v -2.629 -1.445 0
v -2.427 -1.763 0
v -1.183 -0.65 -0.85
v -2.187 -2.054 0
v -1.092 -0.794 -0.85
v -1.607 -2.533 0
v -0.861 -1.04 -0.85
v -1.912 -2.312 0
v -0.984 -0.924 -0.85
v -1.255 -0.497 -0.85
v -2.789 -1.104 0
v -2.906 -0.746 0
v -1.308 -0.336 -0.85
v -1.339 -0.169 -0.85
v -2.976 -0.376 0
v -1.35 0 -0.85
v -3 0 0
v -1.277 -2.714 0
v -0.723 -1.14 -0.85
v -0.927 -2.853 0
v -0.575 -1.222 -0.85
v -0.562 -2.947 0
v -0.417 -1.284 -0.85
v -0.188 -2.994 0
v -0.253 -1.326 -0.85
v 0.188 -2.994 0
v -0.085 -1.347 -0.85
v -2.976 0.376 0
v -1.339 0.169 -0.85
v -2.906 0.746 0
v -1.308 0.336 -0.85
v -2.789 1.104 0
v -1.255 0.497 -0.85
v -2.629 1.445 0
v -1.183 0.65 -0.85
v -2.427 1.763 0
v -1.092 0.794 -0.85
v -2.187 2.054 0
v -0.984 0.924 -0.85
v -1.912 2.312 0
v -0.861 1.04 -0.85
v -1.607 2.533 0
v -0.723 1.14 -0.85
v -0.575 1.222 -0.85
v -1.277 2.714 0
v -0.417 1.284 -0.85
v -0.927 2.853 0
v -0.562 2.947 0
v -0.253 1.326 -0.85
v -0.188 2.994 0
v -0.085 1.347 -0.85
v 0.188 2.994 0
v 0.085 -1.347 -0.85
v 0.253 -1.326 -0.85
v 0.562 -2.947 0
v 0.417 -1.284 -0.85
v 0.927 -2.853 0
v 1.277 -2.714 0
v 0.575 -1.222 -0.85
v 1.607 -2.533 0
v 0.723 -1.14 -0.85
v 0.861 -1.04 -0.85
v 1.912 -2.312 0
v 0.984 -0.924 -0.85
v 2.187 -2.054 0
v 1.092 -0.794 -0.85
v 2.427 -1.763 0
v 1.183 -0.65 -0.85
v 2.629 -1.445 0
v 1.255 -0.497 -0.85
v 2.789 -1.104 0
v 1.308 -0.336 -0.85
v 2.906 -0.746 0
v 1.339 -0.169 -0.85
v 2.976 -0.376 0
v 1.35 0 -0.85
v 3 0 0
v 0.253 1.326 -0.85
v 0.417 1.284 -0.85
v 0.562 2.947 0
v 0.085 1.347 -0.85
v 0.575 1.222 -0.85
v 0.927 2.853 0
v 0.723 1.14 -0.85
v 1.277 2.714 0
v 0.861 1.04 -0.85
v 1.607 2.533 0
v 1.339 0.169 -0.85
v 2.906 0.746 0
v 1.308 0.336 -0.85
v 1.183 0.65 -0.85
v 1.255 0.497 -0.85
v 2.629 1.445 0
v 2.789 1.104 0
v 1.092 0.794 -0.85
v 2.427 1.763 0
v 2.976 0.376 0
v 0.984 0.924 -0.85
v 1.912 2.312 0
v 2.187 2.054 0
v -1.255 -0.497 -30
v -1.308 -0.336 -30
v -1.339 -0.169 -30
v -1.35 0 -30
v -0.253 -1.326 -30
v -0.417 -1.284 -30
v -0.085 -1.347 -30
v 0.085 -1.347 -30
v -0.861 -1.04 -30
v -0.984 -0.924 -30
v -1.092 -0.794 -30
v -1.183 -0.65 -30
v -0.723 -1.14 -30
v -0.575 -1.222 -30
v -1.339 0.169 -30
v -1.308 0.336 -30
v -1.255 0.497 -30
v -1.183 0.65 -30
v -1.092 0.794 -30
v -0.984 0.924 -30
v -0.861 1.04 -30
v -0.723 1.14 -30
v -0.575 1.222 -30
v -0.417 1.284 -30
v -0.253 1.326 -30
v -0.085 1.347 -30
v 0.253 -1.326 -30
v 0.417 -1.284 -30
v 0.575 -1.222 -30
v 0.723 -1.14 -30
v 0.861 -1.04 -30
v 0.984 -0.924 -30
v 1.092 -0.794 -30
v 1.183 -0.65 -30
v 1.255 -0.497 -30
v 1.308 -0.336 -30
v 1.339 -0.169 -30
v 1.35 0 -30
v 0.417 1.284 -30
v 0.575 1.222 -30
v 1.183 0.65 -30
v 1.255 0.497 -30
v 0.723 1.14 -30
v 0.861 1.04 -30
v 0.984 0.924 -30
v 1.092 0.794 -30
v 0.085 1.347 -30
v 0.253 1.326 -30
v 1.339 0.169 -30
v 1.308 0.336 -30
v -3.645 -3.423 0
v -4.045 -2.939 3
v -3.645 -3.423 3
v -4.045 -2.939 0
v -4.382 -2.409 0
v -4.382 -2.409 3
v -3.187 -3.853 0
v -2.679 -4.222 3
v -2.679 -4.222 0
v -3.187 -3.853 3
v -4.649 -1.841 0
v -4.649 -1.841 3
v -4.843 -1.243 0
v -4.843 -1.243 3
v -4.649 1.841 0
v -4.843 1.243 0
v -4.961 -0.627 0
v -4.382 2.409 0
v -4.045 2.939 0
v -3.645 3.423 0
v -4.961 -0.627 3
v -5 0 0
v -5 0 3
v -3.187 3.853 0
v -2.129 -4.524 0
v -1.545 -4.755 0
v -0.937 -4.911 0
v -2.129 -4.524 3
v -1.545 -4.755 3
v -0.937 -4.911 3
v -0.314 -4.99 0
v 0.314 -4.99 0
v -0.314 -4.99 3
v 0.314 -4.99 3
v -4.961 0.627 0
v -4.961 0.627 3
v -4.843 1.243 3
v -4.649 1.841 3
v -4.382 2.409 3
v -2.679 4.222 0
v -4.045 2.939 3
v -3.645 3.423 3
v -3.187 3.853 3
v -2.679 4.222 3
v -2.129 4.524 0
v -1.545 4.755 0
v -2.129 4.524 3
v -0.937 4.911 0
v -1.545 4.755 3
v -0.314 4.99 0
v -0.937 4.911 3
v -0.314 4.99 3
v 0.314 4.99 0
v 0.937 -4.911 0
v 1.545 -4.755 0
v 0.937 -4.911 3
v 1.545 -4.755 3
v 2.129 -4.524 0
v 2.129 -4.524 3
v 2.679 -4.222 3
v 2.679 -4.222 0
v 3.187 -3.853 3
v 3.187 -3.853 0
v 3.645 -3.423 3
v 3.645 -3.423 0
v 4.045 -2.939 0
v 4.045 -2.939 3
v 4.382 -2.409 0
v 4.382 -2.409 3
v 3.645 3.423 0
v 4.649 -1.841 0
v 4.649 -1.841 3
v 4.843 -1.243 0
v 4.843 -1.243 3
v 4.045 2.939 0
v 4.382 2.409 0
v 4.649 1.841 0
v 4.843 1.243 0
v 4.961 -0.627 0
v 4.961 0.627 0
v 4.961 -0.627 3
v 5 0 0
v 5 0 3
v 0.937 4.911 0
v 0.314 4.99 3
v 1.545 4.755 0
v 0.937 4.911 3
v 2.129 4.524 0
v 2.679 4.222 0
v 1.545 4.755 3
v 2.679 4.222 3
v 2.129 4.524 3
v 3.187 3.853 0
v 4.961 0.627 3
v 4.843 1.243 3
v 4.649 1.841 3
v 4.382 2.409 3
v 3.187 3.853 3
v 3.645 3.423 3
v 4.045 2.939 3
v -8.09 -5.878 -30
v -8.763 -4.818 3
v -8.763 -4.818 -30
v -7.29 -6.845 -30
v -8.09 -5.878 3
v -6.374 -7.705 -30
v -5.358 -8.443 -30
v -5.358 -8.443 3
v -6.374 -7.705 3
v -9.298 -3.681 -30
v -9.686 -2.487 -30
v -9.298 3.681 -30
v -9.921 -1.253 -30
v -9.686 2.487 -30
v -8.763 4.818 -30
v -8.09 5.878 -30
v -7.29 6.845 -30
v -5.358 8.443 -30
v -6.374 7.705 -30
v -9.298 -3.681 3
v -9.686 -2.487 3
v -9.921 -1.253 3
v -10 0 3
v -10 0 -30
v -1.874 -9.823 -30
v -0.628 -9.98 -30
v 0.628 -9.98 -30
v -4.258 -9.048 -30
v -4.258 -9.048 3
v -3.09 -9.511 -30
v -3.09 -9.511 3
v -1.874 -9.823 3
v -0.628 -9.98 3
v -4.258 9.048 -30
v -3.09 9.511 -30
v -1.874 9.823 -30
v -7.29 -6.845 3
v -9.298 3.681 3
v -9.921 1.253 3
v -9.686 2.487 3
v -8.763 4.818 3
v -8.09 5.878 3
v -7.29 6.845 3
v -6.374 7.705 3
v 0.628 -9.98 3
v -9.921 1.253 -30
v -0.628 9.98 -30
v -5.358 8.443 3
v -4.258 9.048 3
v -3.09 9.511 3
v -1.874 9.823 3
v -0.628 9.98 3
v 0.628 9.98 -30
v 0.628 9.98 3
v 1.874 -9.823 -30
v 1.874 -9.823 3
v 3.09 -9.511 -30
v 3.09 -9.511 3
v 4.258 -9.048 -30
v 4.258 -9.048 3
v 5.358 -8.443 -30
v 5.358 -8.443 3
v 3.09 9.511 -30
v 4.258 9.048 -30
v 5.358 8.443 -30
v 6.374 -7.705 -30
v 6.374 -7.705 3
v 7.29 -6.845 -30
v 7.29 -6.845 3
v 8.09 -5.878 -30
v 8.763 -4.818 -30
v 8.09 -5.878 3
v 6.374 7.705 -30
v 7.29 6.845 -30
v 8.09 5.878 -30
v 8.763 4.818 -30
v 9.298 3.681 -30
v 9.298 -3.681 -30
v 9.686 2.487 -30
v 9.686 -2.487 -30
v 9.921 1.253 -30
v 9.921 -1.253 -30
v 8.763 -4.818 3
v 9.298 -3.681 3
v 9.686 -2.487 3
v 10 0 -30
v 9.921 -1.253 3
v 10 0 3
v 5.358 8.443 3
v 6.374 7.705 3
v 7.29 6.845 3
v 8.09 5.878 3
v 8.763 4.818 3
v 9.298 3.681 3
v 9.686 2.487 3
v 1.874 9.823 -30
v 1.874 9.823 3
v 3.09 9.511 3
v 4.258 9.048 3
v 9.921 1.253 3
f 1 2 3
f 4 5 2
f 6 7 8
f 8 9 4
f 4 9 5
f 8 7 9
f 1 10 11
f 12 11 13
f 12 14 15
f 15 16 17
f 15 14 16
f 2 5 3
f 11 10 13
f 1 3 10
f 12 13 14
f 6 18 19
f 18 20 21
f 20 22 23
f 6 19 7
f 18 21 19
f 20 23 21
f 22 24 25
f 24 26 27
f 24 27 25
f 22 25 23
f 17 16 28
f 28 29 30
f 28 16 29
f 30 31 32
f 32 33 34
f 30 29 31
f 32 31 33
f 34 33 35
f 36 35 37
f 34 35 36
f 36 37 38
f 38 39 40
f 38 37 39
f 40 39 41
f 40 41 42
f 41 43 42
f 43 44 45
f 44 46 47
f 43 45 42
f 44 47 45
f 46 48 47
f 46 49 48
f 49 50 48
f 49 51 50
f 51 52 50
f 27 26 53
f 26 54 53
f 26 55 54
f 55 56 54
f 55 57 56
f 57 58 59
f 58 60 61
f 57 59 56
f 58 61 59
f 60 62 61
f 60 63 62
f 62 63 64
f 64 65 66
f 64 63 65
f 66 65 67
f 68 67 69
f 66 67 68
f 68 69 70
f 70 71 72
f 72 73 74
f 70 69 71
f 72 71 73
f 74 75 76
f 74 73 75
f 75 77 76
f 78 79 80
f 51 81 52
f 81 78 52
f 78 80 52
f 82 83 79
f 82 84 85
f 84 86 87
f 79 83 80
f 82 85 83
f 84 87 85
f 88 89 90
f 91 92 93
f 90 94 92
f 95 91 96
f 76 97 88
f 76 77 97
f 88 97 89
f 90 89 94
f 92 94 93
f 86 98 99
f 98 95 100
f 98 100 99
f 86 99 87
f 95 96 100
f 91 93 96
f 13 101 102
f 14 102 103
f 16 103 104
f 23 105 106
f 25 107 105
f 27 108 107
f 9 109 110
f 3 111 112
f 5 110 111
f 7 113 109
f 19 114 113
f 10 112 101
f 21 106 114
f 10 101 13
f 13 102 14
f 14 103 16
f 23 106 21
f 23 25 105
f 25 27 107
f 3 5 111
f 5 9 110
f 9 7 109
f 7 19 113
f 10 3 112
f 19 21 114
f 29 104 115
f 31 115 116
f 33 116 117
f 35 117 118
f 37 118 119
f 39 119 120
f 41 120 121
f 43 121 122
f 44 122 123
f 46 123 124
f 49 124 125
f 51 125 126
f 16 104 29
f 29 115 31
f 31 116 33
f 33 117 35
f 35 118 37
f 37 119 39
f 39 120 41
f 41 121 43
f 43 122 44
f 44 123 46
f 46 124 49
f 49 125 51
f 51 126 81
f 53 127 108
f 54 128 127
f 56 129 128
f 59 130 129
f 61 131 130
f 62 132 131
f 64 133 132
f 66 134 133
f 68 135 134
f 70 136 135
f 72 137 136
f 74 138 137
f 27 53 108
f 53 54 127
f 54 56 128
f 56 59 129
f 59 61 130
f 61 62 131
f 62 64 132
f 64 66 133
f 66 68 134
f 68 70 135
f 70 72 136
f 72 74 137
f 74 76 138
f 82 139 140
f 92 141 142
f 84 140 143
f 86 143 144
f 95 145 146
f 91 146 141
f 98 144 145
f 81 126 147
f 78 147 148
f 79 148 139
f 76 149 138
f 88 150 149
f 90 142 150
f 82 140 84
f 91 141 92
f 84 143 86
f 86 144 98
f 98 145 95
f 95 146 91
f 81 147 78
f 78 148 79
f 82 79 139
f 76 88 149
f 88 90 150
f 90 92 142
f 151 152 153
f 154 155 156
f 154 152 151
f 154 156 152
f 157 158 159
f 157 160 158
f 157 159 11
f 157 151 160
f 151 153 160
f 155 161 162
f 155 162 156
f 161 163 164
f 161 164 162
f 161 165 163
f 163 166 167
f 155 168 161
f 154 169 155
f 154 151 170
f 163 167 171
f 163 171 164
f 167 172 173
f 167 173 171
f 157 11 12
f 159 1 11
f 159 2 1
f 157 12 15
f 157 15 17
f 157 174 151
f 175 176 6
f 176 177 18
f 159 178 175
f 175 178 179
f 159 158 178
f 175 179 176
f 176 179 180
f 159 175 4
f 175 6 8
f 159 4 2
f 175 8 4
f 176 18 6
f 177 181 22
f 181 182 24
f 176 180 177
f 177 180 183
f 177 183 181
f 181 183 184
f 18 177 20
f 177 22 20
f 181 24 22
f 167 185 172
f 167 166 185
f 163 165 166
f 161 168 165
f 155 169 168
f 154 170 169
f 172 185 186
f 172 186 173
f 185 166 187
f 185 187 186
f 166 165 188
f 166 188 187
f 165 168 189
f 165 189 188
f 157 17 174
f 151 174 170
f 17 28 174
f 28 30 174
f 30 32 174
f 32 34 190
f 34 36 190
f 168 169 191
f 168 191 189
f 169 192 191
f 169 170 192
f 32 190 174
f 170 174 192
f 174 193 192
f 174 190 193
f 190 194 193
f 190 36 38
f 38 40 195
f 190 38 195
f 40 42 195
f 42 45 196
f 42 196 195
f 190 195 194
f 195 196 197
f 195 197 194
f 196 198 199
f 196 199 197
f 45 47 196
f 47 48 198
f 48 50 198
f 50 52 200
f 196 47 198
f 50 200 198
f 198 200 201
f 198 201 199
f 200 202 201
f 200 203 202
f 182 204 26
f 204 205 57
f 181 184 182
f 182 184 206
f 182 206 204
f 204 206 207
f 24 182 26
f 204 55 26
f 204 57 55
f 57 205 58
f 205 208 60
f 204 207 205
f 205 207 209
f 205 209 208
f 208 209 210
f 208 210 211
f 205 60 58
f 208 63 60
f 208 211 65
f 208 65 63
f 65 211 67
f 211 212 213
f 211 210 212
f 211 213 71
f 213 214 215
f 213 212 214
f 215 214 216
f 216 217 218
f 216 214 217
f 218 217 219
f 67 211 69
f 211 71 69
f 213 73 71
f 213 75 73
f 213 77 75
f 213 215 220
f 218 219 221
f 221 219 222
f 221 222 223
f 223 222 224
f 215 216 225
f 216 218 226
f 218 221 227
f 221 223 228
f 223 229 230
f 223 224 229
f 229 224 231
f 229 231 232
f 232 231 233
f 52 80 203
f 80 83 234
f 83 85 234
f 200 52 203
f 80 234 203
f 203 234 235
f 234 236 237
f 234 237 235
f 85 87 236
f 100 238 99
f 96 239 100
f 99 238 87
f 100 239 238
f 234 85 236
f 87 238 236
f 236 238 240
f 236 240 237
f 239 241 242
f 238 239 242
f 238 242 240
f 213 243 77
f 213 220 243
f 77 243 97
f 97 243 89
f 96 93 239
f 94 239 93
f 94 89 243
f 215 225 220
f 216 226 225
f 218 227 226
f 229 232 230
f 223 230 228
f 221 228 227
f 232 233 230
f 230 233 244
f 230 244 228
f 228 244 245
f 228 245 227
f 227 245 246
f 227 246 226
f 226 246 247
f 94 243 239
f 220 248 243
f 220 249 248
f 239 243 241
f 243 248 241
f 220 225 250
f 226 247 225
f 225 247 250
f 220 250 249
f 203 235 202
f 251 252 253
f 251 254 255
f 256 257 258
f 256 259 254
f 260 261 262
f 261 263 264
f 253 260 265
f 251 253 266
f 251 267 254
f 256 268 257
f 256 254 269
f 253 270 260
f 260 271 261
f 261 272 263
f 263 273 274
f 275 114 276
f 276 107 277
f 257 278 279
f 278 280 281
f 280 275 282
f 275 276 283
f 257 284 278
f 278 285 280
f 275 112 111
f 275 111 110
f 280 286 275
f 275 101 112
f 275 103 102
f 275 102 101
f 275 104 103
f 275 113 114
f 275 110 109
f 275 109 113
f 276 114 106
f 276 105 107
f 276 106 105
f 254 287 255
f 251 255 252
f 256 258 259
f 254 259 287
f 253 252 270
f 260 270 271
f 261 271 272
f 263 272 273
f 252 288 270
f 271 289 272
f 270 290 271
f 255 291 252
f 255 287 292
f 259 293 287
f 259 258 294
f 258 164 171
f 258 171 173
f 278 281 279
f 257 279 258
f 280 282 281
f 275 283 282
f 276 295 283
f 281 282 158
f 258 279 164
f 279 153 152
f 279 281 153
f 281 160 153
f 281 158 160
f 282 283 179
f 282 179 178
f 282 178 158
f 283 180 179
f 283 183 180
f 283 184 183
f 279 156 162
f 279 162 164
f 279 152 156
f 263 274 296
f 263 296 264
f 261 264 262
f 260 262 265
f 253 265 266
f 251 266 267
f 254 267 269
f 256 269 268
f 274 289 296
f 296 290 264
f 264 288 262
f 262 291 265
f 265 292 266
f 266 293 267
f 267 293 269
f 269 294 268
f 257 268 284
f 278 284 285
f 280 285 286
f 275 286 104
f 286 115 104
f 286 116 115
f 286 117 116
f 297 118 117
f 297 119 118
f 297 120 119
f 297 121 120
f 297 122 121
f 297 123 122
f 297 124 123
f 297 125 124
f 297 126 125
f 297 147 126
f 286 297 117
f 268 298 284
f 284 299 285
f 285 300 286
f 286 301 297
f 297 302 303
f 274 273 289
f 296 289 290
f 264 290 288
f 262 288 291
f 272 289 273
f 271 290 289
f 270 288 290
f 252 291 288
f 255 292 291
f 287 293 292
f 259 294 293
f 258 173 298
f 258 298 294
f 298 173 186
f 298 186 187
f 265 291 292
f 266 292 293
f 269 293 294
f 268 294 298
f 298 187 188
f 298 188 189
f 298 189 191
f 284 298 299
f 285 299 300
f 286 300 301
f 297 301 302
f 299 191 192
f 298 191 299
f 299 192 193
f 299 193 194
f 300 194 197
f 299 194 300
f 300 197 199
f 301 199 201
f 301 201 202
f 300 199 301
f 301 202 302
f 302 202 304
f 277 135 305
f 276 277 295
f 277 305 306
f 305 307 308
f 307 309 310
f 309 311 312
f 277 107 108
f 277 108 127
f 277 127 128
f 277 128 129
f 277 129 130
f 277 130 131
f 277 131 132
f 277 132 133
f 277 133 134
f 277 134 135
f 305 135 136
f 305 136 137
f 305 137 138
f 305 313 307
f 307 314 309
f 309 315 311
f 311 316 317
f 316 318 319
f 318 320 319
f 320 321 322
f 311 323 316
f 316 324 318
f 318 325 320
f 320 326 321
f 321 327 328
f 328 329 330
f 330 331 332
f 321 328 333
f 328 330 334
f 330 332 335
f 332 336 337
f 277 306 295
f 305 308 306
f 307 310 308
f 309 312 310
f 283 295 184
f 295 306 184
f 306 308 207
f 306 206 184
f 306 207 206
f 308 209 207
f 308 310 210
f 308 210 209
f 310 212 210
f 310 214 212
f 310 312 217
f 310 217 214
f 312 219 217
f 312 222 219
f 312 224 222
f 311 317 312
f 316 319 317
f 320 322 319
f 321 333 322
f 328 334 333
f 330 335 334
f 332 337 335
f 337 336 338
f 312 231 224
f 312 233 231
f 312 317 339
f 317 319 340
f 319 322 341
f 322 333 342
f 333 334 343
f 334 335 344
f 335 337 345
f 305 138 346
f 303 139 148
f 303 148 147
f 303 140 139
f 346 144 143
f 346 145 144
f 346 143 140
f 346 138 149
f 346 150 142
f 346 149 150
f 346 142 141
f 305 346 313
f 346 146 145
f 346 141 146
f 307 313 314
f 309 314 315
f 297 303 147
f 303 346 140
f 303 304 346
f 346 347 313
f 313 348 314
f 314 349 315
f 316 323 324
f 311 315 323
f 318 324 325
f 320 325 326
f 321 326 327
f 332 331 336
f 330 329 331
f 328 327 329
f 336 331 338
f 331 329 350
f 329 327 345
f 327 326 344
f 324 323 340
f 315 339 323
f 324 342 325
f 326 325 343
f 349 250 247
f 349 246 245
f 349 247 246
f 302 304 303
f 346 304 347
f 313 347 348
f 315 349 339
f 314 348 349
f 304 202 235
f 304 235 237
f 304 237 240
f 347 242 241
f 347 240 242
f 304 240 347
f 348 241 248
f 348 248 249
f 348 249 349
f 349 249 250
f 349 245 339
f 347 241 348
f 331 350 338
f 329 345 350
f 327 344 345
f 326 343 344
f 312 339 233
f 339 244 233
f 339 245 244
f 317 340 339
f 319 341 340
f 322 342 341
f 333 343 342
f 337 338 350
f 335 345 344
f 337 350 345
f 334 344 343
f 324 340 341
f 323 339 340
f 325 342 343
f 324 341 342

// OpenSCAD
$fn = 50;


difference() {
	union() {
		translate(v = [0, 0, -30.0000000000]) {
			cylinder(h = 33, r = 10.0000000000);
		}
	}
	union() {
		translate(v = [0, 0, 0]) {
			rotate(a = [0, 0, 0]) {
				difference() {
					union() {
						translate(v = [0, 0, -33.0000000000]) {
							cylinder(h = 33, r = 1.0000000000);
						}
						translate(v = [0, 0, -0.8500000000]) {
							cylinder(h = 0.8500000000, r1 = 1.3500000000, r2 = 3.0000000000);
						}
						translate(v = [0, 0, -33.0000000000]) {
							cylinder(h = 33, r = 1.3500000000);
						}
						translate(v = [0, 0, -33.0000000000]) {
							cylinder(h = 33, r = 1.0000000000);
						}
					}
					union();
				}
			}
		}
		#cylinder(h = 3, r = 5.0000000000);
	}
}
